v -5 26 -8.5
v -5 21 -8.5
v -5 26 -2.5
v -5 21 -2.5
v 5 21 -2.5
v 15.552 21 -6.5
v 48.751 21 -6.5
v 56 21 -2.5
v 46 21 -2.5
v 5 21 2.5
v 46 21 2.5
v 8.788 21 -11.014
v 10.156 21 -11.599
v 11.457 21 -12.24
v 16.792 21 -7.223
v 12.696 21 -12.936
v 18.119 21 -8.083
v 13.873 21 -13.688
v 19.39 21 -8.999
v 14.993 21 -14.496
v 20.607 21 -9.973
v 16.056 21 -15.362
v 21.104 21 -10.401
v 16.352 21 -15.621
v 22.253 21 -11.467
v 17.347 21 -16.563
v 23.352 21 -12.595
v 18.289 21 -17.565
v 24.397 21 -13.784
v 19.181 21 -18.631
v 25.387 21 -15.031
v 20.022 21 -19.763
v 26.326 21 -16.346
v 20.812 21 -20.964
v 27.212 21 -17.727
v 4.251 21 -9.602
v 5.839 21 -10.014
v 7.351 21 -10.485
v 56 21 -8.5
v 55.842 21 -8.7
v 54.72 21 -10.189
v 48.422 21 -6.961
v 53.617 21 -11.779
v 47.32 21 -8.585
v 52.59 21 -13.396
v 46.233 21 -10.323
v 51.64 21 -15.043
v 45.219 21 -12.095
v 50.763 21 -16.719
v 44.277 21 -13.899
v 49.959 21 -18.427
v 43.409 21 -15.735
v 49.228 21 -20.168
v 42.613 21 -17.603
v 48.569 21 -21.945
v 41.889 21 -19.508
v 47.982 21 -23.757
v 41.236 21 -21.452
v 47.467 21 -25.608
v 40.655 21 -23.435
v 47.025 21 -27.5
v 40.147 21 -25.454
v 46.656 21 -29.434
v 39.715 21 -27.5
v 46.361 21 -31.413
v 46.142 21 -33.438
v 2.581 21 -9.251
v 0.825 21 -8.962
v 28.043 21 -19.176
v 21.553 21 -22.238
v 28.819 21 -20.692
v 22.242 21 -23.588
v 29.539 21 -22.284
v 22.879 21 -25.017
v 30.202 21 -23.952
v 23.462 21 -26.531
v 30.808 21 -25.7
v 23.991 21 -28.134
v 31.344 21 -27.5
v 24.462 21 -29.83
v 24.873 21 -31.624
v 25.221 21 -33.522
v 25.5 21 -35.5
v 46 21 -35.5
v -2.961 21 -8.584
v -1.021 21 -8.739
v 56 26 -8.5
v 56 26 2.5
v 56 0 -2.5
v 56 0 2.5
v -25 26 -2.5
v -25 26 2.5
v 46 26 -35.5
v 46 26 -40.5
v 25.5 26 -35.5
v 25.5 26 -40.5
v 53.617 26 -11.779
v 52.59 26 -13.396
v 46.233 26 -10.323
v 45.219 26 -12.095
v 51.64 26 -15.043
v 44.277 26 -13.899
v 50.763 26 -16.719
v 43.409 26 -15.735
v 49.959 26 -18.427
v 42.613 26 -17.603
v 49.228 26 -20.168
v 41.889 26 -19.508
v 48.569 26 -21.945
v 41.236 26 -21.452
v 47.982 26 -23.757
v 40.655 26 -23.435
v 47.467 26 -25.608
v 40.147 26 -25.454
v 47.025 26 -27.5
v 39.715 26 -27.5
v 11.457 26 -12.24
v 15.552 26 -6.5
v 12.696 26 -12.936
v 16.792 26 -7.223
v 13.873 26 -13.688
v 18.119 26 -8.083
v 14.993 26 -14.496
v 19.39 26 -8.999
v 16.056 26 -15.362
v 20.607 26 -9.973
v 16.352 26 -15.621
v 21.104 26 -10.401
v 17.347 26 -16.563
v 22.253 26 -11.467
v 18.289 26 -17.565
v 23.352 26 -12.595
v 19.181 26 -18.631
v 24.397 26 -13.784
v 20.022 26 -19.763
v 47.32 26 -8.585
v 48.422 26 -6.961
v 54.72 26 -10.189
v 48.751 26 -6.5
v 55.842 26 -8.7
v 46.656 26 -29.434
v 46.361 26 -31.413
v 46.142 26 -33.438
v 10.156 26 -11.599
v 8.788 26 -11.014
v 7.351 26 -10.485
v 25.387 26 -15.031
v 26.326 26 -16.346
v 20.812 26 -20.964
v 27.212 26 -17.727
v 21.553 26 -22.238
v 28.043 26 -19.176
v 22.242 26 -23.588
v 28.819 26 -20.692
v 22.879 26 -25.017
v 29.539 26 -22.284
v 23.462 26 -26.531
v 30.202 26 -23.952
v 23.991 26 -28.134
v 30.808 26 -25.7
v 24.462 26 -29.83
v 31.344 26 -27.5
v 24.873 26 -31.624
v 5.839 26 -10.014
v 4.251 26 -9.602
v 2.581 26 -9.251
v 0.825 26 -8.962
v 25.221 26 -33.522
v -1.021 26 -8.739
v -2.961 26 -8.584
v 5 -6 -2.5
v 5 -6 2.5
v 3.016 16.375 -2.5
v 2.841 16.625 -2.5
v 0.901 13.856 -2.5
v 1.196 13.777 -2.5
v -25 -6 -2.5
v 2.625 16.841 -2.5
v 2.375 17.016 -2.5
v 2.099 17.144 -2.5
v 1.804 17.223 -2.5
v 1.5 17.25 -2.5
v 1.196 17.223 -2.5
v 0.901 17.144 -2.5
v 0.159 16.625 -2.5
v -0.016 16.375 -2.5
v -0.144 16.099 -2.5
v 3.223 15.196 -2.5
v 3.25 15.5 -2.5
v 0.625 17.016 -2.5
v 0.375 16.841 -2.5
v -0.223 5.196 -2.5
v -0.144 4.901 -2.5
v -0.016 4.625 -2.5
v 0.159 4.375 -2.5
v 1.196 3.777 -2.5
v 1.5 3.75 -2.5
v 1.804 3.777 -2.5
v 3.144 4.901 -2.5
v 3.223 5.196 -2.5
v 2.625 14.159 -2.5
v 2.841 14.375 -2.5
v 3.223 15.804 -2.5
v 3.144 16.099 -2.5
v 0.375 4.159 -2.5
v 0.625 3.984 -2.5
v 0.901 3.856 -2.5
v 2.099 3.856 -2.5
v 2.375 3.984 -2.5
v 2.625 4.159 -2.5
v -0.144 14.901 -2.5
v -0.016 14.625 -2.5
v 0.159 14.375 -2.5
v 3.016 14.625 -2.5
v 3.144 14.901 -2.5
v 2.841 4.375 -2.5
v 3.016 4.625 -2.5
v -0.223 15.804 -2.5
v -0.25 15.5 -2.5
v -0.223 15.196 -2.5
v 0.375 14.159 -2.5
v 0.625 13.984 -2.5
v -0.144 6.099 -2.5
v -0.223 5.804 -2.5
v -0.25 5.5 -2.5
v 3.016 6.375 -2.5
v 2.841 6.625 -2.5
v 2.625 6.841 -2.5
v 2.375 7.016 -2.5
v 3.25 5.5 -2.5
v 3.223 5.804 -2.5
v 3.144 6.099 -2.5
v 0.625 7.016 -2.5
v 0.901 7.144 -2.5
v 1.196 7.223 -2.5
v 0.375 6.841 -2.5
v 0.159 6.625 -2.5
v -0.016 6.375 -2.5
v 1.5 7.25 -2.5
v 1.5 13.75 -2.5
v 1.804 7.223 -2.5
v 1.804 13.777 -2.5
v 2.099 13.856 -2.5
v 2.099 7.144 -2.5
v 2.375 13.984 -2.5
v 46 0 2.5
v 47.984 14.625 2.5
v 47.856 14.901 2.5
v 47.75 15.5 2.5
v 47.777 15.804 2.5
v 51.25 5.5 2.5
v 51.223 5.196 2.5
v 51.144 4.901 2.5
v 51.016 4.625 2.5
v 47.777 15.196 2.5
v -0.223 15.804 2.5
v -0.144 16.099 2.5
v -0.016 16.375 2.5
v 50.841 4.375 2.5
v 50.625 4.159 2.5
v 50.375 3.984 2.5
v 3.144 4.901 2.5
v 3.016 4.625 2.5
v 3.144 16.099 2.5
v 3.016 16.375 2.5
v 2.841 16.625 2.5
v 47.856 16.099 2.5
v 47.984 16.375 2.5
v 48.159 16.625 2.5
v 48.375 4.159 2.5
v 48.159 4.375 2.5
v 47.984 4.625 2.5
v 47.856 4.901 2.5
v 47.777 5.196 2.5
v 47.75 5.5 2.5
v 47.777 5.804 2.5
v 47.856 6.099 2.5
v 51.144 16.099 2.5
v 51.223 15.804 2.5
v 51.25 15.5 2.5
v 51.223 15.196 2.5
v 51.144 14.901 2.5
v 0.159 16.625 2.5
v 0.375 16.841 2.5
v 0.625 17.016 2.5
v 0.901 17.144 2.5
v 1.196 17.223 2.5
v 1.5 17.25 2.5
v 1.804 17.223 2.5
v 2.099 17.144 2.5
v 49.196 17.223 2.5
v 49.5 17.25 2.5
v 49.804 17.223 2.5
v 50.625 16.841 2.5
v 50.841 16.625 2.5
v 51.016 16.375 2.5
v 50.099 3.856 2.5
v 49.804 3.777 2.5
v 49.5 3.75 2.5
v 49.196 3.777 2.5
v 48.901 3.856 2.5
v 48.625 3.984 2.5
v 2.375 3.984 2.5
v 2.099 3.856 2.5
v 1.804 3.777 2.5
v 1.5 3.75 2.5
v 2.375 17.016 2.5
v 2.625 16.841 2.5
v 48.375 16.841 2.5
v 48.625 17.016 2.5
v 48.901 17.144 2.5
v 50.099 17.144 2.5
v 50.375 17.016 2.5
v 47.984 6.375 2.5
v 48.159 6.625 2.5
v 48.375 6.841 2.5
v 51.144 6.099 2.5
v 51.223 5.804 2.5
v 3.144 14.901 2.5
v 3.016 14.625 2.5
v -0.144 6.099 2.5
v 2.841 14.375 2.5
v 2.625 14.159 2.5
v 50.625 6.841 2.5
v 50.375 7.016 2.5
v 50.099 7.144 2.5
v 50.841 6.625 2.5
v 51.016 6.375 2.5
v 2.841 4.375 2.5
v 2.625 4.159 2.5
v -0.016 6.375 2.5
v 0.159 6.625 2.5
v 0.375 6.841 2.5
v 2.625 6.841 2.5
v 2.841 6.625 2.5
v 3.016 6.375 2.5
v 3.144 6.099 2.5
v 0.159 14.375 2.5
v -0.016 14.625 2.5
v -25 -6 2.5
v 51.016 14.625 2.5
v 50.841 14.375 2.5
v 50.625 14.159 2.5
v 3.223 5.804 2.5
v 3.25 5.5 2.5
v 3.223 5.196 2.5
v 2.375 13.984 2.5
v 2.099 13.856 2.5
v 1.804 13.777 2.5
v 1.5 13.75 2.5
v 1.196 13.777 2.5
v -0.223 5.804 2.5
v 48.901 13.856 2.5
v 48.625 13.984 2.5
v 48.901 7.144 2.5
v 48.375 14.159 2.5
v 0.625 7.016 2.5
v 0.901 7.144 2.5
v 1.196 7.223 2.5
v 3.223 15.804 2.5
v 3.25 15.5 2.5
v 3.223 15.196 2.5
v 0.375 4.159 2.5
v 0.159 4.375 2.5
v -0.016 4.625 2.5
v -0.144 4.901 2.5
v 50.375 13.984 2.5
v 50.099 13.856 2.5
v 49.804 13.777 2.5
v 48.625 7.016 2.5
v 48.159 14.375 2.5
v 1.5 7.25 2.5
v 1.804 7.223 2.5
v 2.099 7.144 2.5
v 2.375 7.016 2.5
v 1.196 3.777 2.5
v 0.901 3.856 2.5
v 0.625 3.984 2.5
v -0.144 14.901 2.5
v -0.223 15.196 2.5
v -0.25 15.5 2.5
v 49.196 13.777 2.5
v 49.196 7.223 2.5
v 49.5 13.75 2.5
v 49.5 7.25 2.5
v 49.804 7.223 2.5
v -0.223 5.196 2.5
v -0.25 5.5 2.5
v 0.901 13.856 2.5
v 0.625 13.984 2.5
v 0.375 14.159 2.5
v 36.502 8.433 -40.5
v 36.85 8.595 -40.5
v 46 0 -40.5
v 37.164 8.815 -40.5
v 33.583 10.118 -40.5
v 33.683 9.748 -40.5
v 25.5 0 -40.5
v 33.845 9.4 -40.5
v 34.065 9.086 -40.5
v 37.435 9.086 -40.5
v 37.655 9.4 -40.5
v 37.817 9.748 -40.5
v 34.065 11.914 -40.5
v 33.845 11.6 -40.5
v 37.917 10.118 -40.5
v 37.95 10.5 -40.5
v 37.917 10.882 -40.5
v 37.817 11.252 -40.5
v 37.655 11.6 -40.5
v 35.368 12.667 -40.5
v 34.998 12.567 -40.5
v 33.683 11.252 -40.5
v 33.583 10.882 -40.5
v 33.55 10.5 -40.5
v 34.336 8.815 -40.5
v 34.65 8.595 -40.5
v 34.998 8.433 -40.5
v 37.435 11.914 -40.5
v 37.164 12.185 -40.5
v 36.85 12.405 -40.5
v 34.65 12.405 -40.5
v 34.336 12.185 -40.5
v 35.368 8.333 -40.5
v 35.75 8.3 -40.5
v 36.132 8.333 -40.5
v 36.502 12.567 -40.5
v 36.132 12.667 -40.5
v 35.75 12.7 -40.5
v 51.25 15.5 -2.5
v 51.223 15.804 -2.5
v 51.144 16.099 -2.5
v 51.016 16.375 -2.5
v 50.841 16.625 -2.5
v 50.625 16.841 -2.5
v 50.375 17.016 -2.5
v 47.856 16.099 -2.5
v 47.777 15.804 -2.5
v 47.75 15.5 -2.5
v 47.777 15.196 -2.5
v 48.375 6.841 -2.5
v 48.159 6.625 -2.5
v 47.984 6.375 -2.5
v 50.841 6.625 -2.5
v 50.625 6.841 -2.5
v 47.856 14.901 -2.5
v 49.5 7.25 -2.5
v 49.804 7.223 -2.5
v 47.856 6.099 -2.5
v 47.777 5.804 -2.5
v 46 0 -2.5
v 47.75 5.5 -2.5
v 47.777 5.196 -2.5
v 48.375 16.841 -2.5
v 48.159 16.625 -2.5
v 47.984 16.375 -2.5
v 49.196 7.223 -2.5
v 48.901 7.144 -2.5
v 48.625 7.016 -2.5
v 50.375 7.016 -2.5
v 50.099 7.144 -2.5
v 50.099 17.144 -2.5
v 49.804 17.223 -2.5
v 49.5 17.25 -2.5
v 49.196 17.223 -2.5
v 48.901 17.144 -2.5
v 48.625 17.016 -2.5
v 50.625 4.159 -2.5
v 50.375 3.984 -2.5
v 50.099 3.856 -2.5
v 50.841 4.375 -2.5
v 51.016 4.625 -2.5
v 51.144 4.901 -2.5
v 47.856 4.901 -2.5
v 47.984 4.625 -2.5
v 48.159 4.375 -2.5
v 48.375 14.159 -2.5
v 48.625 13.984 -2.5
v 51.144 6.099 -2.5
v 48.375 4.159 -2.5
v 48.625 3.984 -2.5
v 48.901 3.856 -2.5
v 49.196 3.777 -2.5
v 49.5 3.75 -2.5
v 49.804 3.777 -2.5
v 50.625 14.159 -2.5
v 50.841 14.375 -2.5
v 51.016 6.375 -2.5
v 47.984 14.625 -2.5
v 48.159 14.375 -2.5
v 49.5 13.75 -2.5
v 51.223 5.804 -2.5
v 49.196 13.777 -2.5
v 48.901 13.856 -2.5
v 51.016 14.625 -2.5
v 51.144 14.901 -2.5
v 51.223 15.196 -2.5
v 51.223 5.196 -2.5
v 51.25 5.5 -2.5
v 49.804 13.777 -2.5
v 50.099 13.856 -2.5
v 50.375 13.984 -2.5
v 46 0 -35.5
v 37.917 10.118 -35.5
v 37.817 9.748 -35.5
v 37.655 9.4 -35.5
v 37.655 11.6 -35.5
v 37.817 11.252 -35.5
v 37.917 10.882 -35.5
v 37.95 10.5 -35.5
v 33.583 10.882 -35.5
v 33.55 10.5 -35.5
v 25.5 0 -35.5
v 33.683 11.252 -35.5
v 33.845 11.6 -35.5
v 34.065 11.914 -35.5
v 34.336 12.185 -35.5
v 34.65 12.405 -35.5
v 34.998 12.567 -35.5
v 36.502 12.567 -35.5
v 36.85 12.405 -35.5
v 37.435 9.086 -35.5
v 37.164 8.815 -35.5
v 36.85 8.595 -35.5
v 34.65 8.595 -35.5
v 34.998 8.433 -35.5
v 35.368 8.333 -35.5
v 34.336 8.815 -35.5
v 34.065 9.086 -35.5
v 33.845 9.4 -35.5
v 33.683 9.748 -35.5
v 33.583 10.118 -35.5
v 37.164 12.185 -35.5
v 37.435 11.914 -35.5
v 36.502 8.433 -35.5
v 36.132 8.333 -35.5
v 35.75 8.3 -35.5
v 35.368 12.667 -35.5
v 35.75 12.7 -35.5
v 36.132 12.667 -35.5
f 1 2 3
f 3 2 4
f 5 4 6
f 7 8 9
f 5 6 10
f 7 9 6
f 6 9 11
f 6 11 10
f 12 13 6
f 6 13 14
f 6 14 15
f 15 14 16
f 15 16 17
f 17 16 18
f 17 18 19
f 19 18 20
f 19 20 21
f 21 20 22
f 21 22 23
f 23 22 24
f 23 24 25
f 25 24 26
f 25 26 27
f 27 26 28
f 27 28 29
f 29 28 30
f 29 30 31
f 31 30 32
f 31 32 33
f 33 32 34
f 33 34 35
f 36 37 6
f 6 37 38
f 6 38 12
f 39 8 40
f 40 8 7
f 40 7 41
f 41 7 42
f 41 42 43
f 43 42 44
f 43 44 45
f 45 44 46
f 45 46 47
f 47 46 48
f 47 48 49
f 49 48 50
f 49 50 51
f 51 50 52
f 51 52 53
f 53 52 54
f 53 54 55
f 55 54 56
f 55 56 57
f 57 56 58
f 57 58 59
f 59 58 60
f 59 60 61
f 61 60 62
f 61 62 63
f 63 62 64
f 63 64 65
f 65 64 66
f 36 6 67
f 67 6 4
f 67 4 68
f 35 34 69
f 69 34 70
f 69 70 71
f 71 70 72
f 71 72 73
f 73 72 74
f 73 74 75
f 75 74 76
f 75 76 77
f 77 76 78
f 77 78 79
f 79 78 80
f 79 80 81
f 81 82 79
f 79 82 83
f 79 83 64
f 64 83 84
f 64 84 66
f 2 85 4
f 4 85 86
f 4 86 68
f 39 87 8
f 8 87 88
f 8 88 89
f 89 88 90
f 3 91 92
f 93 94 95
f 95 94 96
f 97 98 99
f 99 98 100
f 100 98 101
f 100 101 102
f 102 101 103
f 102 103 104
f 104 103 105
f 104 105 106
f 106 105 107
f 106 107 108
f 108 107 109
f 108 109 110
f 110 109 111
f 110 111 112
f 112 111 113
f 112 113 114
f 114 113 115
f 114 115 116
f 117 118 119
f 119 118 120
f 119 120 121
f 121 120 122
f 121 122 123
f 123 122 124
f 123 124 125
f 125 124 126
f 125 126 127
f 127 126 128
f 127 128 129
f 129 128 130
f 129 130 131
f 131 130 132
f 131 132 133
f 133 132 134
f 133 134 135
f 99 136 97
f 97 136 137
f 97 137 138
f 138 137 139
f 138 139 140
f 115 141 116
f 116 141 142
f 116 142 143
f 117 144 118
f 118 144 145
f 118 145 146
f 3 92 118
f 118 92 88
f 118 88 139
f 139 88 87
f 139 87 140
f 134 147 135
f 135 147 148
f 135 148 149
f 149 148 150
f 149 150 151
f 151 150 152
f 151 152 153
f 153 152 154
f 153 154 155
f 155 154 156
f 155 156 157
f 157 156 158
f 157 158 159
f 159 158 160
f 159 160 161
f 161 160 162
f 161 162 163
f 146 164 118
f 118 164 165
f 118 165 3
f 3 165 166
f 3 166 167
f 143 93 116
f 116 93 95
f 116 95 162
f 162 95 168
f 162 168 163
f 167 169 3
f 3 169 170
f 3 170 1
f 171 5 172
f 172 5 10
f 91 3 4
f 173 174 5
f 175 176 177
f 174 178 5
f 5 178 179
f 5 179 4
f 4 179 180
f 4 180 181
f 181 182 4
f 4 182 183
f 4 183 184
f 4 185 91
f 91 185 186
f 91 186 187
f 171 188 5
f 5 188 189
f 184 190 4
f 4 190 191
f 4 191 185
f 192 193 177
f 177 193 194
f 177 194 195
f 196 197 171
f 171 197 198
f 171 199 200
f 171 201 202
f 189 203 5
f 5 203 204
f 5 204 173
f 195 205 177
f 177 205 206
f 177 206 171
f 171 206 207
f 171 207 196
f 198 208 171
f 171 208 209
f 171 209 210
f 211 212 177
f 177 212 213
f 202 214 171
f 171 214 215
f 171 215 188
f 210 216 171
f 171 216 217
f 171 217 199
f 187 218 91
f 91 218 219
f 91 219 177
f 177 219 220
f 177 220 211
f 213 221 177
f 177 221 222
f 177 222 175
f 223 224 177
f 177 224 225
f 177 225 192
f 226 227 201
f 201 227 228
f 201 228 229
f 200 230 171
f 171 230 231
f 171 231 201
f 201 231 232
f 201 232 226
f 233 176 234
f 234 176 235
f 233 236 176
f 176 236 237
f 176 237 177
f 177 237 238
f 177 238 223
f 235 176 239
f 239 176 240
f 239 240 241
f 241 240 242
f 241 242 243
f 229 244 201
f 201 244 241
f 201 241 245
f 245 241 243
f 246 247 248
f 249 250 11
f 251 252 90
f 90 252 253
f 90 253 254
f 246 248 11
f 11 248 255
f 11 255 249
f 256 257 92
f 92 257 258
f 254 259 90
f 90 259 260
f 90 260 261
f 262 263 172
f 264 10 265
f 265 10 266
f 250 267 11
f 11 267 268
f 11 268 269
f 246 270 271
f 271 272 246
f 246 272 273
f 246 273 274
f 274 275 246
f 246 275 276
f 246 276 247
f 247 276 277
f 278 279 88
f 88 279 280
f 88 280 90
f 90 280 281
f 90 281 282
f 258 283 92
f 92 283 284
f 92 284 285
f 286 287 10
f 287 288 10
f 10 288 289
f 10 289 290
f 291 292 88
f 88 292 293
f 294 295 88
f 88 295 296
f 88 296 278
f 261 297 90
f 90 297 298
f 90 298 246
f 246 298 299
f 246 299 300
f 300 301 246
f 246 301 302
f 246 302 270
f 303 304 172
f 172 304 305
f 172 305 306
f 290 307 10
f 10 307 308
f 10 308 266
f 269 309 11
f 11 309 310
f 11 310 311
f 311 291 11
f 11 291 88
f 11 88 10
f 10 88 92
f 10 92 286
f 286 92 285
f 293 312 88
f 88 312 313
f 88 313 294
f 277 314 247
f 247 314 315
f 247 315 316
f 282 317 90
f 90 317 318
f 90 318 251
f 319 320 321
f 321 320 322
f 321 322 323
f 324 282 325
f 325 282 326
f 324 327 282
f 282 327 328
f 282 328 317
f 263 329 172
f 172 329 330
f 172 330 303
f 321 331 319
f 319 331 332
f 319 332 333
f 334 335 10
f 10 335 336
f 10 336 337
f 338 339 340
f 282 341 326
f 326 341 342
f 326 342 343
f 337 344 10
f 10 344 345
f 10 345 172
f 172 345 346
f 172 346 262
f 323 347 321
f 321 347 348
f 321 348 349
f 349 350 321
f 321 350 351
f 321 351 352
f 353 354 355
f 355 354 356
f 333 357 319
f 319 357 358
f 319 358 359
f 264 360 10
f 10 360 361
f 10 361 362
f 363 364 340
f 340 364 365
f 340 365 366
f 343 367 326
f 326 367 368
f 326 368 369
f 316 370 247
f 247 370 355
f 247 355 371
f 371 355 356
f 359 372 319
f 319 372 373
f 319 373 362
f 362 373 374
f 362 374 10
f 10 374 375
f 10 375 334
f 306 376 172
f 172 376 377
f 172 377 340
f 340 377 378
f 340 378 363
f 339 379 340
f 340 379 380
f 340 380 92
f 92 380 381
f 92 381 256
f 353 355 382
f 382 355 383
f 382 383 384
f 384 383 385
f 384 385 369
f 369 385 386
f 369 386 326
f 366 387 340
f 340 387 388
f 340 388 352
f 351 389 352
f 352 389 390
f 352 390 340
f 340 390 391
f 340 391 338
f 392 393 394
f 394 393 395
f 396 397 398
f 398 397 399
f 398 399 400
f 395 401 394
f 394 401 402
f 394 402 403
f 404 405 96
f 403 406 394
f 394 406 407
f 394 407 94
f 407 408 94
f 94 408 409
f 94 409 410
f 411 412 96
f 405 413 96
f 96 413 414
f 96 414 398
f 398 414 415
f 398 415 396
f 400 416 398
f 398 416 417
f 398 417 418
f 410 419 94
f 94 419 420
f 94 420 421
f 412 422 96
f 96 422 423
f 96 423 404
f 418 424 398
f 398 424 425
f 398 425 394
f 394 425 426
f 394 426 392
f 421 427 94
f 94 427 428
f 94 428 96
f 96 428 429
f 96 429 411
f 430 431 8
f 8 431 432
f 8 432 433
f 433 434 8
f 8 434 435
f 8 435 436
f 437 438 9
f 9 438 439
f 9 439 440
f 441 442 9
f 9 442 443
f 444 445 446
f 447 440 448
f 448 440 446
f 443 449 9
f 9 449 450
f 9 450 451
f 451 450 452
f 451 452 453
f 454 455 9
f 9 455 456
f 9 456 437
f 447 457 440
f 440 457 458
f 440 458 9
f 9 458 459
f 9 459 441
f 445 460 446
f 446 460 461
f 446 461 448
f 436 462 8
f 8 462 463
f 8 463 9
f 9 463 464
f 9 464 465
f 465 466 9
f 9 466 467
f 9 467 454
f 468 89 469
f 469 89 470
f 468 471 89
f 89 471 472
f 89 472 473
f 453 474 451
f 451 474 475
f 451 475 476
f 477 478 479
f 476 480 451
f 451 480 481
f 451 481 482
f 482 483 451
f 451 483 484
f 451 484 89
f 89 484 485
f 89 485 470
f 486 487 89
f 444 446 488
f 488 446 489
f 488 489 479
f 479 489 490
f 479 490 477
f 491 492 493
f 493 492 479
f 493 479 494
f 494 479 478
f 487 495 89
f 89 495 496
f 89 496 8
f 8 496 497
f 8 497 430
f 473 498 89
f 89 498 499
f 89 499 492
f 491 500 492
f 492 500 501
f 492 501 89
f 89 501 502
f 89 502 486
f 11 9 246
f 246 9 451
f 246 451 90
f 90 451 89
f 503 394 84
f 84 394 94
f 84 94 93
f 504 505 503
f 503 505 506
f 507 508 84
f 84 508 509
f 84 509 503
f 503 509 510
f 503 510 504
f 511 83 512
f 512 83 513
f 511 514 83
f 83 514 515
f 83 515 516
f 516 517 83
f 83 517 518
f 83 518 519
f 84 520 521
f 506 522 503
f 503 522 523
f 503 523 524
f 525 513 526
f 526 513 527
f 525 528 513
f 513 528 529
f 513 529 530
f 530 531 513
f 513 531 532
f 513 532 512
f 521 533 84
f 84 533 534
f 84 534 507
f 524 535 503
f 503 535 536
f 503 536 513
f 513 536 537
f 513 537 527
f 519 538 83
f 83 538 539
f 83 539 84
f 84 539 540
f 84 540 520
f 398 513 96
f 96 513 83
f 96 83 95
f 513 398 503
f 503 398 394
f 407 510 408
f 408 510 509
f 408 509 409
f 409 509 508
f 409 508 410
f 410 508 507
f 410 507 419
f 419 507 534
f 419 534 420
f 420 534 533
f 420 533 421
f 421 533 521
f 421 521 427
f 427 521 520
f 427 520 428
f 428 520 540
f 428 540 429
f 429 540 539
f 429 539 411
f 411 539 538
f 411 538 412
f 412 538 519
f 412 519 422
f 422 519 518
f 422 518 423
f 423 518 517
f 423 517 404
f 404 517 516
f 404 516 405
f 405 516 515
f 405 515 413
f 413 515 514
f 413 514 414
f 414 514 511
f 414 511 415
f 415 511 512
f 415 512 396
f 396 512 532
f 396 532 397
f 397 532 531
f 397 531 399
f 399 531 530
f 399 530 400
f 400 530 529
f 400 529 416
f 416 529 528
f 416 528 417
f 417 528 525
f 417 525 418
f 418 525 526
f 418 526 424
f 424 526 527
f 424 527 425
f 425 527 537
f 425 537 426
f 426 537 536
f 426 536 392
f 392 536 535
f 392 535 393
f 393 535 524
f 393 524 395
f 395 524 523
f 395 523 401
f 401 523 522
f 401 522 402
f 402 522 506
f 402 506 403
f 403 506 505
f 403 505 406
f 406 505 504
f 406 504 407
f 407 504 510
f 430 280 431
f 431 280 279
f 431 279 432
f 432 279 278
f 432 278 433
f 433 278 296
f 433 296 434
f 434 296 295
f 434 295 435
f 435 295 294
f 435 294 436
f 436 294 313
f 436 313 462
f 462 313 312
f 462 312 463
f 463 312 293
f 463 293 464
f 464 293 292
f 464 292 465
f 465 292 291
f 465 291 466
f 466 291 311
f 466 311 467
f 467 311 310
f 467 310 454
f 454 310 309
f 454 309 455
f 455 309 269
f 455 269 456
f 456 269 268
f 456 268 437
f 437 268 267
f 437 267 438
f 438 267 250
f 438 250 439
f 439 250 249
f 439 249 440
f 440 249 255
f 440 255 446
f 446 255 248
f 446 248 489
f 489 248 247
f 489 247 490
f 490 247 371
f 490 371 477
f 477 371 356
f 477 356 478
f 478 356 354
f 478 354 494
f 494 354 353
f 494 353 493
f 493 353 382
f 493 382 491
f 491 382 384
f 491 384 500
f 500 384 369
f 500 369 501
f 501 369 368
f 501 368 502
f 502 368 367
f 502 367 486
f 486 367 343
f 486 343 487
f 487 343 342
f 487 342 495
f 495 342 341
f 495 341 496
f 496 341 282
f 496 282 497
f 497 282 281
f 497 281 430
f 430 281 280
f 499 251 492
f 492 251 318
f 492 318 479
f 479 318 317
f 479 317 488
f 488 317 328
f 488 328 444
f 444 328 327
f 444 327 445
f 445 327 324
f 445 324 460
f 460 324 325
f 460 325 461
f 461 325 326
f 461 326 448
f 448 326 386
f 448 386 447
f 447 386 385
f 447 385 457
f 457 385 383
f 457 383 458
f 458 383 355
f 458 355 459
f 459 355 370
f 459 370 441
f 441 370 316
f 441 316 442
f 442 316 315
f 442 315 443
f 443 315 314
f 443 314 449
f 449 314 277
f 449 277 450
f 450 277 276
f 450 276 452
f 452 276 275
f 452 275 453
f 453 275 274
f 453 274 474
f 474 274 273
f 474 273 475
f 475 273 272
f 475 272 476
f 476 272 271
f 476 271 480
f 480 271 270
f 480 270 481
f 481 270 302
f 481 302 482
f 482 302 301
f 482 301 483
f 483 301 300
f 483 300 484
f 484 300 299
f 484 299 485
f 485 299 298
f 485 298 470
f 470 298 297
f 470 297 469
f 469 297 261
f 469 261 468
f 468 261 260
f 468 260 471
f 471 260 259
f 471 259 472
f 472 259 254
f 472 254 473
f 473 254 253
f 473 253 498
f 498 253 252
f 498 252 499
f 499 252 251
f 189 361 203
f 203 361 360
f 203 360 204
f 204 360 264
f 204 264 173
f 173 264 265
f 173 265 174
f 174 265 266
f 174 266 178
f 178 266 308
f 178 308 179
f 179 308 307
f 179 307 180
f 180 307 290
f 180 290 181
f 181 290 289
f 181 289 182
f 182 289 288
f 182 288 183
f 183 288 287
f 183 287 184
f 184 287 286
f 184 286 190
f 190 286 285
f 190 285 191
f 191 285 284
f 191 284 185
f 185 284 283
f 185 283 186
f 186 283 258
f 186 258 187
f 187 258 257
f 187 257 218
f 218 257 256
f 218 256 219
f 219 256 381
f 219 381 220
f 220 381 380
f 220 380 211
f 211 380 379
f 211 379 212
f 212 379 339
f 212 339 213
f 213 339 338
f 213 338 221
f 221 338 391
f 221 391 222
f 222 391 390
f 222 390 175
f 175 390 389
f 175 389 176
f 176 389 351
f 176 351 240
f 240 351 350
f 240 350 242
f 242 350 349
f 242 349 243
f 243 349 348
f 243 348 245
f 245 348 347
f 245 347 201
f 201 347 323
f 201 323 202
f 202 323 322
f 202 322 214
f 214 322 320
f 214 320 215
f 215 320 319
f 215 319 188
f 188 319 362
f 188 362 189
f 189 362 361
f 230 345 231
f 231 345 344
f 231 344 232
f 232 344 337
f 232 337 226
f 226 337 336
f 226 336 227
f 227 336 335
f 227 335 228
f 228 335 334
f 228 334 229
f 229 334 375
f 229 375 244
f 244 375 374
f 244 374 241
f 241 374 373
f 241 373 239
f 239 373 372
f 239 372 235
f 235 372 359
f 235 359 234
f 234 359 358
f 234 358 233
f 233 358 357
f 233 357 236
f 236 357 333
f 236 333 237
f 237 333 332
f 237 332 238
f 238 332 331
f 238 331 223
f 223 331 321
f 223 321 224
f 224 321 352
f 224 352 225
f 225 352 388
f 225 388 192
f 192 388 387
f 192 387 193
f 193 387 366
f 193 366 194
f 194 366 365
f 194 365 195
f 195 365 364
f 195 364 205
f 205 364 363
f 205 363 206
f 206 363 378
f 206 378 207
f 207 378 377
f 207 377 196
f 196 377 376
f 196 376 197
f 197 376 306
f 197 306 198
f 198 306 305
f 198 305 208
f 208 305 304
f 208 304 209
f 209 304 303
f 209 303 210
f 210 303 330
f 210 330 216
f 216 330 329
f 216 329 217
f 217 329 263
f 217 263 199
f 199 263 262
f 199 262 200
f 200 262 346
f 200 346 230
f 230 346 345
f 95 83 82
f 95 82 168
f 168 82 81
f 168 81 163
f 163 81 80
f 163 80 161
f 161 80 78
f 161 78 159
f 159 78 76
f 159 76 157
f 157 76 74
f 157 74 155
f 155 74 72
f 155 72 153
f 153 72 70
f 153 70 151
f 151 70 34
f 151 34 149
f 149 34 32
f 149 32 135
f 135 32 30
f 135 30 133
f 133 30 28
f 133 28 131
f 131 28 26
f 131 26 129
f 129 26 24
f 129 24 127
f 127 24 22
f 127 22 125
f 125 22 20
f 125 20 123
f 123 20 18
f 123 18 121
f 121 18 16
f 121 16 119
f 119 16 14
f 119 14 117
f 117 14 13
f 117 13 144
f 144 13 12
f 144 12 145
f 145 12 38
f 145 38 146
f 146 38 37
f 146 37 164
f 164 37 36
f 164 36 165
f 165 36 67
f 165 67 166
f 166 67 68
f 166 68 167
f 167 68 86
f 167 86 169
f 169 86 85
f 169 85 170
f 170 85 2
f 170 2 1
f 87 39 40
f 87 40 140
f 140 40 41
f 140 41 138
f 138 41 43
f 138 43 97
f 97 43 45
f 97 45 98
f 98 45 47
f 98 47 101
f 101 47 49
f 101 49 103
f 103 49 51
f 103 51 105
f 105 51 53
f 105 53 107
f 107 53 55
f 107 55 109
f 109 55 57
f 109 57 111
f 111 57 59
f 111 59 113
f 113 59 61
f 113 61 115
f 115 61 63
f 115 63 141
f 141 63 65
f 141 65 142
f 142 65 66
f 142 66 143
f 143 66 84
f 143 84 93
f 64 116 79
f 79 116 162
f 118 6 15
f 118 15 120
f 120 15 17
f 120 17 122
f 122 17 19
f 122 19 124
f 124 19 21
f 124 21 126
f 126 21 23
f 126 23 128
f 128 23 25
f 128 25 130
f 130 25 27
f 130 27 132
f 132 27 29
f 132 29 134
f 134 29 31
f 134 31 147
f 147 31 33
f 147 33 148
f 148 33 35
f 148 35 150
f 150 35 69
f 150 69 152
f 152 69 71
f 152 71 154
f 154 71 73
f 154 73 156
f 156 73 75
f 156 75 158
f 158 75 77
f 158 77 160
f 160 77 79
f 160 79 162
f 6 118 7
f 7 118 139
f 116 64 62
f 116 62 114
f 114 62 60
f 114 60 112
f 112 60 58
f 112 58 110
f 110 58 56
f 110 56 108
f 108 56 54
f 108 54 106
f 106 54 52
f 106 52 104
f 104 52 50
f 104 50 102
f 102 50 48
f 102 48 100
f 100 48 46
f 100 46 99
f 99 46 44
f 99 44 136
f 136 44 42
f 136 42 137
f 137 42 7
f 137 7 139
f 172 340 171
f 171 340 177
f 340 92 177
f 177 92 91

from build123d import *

# Parameters (mm, degrees)
SKETCH1_W             = 10
SKETCH1_H             = 5
BOSS_EXTRUDE1_DEPTH   = 21
BOSS_EXTRUDE1_2_DEPTH = 21
SKETCH2_W             = 61
SKETCH2_H             = 43
BOSS_EXTRUDE2_DEPTH   = 5
SKETCH3_W             = 20.5
SKETCH3_H             = 5
BOSS_EXTRUDE3_DEPTH   = 21
CUT_EXTRUDE1_REACH    = 74.498
SKETCH4_R             = 2.2
CUT_EXTRUDE2_REACH    = 77.24
SKETCH5_R             = 1.75
CUT_EXTRUDE4_START    = -5
CUT_EXTRUDE4_DEPTH    = 5
SKETCH11_W            = 5
SKETCH11_H            = 32
BOSS_EXTRUDE5_DEPTH   = 20
SKETCH14_W            = 10
SKETCH14_H            = 5
BOSS_EXTRUDE6_DEPTH   = 6


# Read off the part's stored shape, not the designer's step: Cut-Extrude4
with BuildPart() as part:
    # Sketch1 → Boss-Extrude1 (new body)
    with BuildSketch(Plane(origin=(0, 0, 0), x_dir=(1, 0, 0), z_dir=(0, 1, 0))):
        Rectangle(SKETCH1_W, SKETCH1_H)
    extrude(amount=BOSS_EXTRUDE1_DEPTH)



with BuildPart() as body_2:
    # Sketch1 → Boss-Extrude1 2 (new body)
    with BuildSketch(Plane(origin=(0, 0, 0), x_dir=(1, 0, 0), z_dir=(0, 1, 0))):
        with Locations((51, 0)):
            Rectangle(SKETCH1_W, SKETCH1_H)
    extrude(amount=BOSS_EXTRUDE1_2_DEPTH)


with BuildPart() as part_1:
    add(part.part)

    add(body_2.part)  # Boss-Extrude2 merges body 2
    # Sketch2 → Boss-Extrude2 (add)
    with BuildSketch(Plane(origin=(0, 21, 0), x_dir=(1, 0, 0), z_dir=(0, 1, 0))):
        with Locations((25.5, 19)):
            Rectangle(SKETCH2_W, SKETCH2_H)
    extrude(amount=BOSS_EXTRUDE2_DEPTH)

    # Sketch3 → Boss-Extrude3 (add)
    with BuildSketch(Plane.XZ.offset(-21)):
        with Locations((35.75, -38)):
            Rectangle(SKETCH3_W, SKETCH3_H)
    extrude(amount=BOSS_EXTRUDE3_DEPTH)

    # Sketch4 → Cut-Extrude1 (cut, up to next)
    with BuildSketch(Plane.XY.offset(-35.5), mode=Mode.PRIVATE) as cut_extrude1_sk1:
        with Locations((35.75, 10.5)):
            Circle(SKETCH4_R)
    cut_extrude1_tool1 = extrude(cut_extrude1_sk1.sketch, amount=-CUT_EXTRUDE1_REACH, mode=Mode.PRIVATE) & part_1.part
    add(cut_extrude1_tool1.solids().sort_by_distance((35.75, 10.5, -35.5))[0], mode=Mode.SUBTRACT)

    # Sketch5 → Cut-Extrude2 (cut, up to next)
    with BuildSketch(Plane.XY.offset(2.5), mode=Mode.PRIVATE) as cut_extrude2_sk1:
        with Locations((1.5, 15.5)):
            Circle(SKETCH5_R)
    cut_extrude2_tool1 = extrude(cut_extrude2_sk1.sketch, amount=-CUT_EXTRUDE2_REACH, mode=Mode.PRIVATE) & part_1.part
    # Sketch5 → Cut-Extrude2 (cut, up to next)
    with BuildSketch(Plane.XY.offset(2.5), mode=Mode.PRIVATE) as cut_extrude2_sk2:
        with Locations((49.5, 15.5)):
            Circle(SKETCH5_R)
    cut_extrude2_tool2 = extrude(cut_extrude2_sk2.sketch, amount=-CUT_EXTRUDE2_REACH, mode=Mode.PRIVATE) & part_1.part
    # Sketch5 → Cut-Extrude2 (cut, up to next)
    with BuildSketch(Plane.XY.offset(2.5), mode=Mode.PRIVATE) as cut_extrude2_sk3:
        with Locations((49.5, 5.5)):
            Circle(SKETCH5_R)
    cut_extrude2_tool3 = extrude(cut_extrude2_sk3.sketch, amount=-CUT_EXTRUDE2_REACH, mode=Mode.PRIVATE) & part_1.part
    # Sketch5 → Cut-Extrude2 (cut, up to next)
    with BuildSketch(Plane.XY.offset(2.5), mode=Mode.PRIVATE) as cut_extrude2_sk4:
        with Locations((1.5, 5.5)):
            Circle(SKETCH5_R)
    cut_extrude2_tool4 = extrude(cut_extrude2_sk4.sketch, amount=-CUT_EXTRUDE2_REACH, mode=Mode.PRIVATE) & part_1.part
    add(cut_extrude2_tool1.solids().sort_by_distance((1.5, 15.5, 2.5))[0], mode=Mode.SUBTRACT)
    add(cut_extrude2_tool2.solids().sort_by_distance((49.5, 15.5, 2.5))[0], mode=Mode.SUBTRACT)
    add(cut_extrude2_tool3.solids().sort_by_distance((49.5, 5.5, 2.5))[0], mode=Mode.SUBTRACT)
    add(cut_extrude2_tool4.solids().sort_by_distance((1.5, 5.5, 2.5))[0], mode=Mode.SUBTRACT)

    # Cut-Extrude4 outline → Cut-Extrude4 (cut)
    with BuildSketch(Plane.XZ.offset(-21).offset(CUT_EXTRUDE4_START)):
        with BuildLine():
            Line((25.5, -40.5), (25.5, -35.5))
            add(Edge.make_bspline(
                [(25.5, -35.5), (22.307194013, -9.111827573), (-5, -8.5)],
                knots=[0, 0, 0, 1, 1, 1], degree=2))
            Line((-5, -8.5), (-5, -40.5))
            Line((-5, -40.5), (25.5, -40.5))
        make_face()
        with BuildLine():
            Line((46, -35.5), (46, -40.5))
            Line((46, -40.5), (56, -40.5))
            Line((56, -40.5), (56, -8.5))
            add(Edge.make_bspline(
                [(46, -35.5), (46.761539252, -20.151458346), (56, -8.5)],
                knots=[0, 0, 0, 1, 1, 1], degree=2))
        make_face()
        with BuildLine():
            add(Edge.make_bspline(
                [(31.343896349, -27.5), (31.33756892, -27.477004827), (30.705752309, -25.187905516), (29.116883998, -20.825539694), (25.674792213, -15.02454609), (21.148134772, -10.119526716), (17.495807629, -7.576251466), (15.551950813, -6.5)],
                knots=[0.123732118, 0.123732118, 0.123732118, 0.123732118, 0.125, 0.25, 0.375, 0.5, 0.624358146, 0.624358146, 0.624358146, 0.624358146], degree=3))
            Line((31.343896349, -27.5), (39.715207905, -27.5))
            add(Edge.make_bspline(
                [(39.715207905, -27.5), (39.769177374, -27.217759906), (40.375135311, -24.177689148), (42.00944543, -18.53264277), (44.988088874, -12.248553286), (47.445071003, -8.34732733), (48.500497039, -6.84736316), (48.751036225, -6.5)],
                knots=[0.224487405, 0.224487405, 0.224487405, 0.224487405, 0.25, 0.5, 0.75, 0.875, 0.913034357, 0.913034357, 0.913034357, 0.913034357], degree=3))
            Line((48.751036225, -6.5), (15.551950813, -6.5))
        make_face()
    extrude(amount=CUT_EXTRUDE4_DEPTH, mode=Mode.SUBTRACT)

    # Sketch11 → Boss-Extrude5 (add)
    with BuildSketch(Plane.ZY.offset(5)):
        with Locations((0, 10)):
            Rectangle(SKETCH11_W, SKETCH11_H)
    extrude(amount=BOSS_EXTRUDE5_DEPTH)

    # Sketch14 → Boss-Extrude6 (add)
    with BuildSketch(Plane.XZ):
        Rectangle(SKETCH14_W, SKETCH14_H)
    extrude(amount=BOSS_EXTRUDE6_DEPTH)


solid = part_1.part
